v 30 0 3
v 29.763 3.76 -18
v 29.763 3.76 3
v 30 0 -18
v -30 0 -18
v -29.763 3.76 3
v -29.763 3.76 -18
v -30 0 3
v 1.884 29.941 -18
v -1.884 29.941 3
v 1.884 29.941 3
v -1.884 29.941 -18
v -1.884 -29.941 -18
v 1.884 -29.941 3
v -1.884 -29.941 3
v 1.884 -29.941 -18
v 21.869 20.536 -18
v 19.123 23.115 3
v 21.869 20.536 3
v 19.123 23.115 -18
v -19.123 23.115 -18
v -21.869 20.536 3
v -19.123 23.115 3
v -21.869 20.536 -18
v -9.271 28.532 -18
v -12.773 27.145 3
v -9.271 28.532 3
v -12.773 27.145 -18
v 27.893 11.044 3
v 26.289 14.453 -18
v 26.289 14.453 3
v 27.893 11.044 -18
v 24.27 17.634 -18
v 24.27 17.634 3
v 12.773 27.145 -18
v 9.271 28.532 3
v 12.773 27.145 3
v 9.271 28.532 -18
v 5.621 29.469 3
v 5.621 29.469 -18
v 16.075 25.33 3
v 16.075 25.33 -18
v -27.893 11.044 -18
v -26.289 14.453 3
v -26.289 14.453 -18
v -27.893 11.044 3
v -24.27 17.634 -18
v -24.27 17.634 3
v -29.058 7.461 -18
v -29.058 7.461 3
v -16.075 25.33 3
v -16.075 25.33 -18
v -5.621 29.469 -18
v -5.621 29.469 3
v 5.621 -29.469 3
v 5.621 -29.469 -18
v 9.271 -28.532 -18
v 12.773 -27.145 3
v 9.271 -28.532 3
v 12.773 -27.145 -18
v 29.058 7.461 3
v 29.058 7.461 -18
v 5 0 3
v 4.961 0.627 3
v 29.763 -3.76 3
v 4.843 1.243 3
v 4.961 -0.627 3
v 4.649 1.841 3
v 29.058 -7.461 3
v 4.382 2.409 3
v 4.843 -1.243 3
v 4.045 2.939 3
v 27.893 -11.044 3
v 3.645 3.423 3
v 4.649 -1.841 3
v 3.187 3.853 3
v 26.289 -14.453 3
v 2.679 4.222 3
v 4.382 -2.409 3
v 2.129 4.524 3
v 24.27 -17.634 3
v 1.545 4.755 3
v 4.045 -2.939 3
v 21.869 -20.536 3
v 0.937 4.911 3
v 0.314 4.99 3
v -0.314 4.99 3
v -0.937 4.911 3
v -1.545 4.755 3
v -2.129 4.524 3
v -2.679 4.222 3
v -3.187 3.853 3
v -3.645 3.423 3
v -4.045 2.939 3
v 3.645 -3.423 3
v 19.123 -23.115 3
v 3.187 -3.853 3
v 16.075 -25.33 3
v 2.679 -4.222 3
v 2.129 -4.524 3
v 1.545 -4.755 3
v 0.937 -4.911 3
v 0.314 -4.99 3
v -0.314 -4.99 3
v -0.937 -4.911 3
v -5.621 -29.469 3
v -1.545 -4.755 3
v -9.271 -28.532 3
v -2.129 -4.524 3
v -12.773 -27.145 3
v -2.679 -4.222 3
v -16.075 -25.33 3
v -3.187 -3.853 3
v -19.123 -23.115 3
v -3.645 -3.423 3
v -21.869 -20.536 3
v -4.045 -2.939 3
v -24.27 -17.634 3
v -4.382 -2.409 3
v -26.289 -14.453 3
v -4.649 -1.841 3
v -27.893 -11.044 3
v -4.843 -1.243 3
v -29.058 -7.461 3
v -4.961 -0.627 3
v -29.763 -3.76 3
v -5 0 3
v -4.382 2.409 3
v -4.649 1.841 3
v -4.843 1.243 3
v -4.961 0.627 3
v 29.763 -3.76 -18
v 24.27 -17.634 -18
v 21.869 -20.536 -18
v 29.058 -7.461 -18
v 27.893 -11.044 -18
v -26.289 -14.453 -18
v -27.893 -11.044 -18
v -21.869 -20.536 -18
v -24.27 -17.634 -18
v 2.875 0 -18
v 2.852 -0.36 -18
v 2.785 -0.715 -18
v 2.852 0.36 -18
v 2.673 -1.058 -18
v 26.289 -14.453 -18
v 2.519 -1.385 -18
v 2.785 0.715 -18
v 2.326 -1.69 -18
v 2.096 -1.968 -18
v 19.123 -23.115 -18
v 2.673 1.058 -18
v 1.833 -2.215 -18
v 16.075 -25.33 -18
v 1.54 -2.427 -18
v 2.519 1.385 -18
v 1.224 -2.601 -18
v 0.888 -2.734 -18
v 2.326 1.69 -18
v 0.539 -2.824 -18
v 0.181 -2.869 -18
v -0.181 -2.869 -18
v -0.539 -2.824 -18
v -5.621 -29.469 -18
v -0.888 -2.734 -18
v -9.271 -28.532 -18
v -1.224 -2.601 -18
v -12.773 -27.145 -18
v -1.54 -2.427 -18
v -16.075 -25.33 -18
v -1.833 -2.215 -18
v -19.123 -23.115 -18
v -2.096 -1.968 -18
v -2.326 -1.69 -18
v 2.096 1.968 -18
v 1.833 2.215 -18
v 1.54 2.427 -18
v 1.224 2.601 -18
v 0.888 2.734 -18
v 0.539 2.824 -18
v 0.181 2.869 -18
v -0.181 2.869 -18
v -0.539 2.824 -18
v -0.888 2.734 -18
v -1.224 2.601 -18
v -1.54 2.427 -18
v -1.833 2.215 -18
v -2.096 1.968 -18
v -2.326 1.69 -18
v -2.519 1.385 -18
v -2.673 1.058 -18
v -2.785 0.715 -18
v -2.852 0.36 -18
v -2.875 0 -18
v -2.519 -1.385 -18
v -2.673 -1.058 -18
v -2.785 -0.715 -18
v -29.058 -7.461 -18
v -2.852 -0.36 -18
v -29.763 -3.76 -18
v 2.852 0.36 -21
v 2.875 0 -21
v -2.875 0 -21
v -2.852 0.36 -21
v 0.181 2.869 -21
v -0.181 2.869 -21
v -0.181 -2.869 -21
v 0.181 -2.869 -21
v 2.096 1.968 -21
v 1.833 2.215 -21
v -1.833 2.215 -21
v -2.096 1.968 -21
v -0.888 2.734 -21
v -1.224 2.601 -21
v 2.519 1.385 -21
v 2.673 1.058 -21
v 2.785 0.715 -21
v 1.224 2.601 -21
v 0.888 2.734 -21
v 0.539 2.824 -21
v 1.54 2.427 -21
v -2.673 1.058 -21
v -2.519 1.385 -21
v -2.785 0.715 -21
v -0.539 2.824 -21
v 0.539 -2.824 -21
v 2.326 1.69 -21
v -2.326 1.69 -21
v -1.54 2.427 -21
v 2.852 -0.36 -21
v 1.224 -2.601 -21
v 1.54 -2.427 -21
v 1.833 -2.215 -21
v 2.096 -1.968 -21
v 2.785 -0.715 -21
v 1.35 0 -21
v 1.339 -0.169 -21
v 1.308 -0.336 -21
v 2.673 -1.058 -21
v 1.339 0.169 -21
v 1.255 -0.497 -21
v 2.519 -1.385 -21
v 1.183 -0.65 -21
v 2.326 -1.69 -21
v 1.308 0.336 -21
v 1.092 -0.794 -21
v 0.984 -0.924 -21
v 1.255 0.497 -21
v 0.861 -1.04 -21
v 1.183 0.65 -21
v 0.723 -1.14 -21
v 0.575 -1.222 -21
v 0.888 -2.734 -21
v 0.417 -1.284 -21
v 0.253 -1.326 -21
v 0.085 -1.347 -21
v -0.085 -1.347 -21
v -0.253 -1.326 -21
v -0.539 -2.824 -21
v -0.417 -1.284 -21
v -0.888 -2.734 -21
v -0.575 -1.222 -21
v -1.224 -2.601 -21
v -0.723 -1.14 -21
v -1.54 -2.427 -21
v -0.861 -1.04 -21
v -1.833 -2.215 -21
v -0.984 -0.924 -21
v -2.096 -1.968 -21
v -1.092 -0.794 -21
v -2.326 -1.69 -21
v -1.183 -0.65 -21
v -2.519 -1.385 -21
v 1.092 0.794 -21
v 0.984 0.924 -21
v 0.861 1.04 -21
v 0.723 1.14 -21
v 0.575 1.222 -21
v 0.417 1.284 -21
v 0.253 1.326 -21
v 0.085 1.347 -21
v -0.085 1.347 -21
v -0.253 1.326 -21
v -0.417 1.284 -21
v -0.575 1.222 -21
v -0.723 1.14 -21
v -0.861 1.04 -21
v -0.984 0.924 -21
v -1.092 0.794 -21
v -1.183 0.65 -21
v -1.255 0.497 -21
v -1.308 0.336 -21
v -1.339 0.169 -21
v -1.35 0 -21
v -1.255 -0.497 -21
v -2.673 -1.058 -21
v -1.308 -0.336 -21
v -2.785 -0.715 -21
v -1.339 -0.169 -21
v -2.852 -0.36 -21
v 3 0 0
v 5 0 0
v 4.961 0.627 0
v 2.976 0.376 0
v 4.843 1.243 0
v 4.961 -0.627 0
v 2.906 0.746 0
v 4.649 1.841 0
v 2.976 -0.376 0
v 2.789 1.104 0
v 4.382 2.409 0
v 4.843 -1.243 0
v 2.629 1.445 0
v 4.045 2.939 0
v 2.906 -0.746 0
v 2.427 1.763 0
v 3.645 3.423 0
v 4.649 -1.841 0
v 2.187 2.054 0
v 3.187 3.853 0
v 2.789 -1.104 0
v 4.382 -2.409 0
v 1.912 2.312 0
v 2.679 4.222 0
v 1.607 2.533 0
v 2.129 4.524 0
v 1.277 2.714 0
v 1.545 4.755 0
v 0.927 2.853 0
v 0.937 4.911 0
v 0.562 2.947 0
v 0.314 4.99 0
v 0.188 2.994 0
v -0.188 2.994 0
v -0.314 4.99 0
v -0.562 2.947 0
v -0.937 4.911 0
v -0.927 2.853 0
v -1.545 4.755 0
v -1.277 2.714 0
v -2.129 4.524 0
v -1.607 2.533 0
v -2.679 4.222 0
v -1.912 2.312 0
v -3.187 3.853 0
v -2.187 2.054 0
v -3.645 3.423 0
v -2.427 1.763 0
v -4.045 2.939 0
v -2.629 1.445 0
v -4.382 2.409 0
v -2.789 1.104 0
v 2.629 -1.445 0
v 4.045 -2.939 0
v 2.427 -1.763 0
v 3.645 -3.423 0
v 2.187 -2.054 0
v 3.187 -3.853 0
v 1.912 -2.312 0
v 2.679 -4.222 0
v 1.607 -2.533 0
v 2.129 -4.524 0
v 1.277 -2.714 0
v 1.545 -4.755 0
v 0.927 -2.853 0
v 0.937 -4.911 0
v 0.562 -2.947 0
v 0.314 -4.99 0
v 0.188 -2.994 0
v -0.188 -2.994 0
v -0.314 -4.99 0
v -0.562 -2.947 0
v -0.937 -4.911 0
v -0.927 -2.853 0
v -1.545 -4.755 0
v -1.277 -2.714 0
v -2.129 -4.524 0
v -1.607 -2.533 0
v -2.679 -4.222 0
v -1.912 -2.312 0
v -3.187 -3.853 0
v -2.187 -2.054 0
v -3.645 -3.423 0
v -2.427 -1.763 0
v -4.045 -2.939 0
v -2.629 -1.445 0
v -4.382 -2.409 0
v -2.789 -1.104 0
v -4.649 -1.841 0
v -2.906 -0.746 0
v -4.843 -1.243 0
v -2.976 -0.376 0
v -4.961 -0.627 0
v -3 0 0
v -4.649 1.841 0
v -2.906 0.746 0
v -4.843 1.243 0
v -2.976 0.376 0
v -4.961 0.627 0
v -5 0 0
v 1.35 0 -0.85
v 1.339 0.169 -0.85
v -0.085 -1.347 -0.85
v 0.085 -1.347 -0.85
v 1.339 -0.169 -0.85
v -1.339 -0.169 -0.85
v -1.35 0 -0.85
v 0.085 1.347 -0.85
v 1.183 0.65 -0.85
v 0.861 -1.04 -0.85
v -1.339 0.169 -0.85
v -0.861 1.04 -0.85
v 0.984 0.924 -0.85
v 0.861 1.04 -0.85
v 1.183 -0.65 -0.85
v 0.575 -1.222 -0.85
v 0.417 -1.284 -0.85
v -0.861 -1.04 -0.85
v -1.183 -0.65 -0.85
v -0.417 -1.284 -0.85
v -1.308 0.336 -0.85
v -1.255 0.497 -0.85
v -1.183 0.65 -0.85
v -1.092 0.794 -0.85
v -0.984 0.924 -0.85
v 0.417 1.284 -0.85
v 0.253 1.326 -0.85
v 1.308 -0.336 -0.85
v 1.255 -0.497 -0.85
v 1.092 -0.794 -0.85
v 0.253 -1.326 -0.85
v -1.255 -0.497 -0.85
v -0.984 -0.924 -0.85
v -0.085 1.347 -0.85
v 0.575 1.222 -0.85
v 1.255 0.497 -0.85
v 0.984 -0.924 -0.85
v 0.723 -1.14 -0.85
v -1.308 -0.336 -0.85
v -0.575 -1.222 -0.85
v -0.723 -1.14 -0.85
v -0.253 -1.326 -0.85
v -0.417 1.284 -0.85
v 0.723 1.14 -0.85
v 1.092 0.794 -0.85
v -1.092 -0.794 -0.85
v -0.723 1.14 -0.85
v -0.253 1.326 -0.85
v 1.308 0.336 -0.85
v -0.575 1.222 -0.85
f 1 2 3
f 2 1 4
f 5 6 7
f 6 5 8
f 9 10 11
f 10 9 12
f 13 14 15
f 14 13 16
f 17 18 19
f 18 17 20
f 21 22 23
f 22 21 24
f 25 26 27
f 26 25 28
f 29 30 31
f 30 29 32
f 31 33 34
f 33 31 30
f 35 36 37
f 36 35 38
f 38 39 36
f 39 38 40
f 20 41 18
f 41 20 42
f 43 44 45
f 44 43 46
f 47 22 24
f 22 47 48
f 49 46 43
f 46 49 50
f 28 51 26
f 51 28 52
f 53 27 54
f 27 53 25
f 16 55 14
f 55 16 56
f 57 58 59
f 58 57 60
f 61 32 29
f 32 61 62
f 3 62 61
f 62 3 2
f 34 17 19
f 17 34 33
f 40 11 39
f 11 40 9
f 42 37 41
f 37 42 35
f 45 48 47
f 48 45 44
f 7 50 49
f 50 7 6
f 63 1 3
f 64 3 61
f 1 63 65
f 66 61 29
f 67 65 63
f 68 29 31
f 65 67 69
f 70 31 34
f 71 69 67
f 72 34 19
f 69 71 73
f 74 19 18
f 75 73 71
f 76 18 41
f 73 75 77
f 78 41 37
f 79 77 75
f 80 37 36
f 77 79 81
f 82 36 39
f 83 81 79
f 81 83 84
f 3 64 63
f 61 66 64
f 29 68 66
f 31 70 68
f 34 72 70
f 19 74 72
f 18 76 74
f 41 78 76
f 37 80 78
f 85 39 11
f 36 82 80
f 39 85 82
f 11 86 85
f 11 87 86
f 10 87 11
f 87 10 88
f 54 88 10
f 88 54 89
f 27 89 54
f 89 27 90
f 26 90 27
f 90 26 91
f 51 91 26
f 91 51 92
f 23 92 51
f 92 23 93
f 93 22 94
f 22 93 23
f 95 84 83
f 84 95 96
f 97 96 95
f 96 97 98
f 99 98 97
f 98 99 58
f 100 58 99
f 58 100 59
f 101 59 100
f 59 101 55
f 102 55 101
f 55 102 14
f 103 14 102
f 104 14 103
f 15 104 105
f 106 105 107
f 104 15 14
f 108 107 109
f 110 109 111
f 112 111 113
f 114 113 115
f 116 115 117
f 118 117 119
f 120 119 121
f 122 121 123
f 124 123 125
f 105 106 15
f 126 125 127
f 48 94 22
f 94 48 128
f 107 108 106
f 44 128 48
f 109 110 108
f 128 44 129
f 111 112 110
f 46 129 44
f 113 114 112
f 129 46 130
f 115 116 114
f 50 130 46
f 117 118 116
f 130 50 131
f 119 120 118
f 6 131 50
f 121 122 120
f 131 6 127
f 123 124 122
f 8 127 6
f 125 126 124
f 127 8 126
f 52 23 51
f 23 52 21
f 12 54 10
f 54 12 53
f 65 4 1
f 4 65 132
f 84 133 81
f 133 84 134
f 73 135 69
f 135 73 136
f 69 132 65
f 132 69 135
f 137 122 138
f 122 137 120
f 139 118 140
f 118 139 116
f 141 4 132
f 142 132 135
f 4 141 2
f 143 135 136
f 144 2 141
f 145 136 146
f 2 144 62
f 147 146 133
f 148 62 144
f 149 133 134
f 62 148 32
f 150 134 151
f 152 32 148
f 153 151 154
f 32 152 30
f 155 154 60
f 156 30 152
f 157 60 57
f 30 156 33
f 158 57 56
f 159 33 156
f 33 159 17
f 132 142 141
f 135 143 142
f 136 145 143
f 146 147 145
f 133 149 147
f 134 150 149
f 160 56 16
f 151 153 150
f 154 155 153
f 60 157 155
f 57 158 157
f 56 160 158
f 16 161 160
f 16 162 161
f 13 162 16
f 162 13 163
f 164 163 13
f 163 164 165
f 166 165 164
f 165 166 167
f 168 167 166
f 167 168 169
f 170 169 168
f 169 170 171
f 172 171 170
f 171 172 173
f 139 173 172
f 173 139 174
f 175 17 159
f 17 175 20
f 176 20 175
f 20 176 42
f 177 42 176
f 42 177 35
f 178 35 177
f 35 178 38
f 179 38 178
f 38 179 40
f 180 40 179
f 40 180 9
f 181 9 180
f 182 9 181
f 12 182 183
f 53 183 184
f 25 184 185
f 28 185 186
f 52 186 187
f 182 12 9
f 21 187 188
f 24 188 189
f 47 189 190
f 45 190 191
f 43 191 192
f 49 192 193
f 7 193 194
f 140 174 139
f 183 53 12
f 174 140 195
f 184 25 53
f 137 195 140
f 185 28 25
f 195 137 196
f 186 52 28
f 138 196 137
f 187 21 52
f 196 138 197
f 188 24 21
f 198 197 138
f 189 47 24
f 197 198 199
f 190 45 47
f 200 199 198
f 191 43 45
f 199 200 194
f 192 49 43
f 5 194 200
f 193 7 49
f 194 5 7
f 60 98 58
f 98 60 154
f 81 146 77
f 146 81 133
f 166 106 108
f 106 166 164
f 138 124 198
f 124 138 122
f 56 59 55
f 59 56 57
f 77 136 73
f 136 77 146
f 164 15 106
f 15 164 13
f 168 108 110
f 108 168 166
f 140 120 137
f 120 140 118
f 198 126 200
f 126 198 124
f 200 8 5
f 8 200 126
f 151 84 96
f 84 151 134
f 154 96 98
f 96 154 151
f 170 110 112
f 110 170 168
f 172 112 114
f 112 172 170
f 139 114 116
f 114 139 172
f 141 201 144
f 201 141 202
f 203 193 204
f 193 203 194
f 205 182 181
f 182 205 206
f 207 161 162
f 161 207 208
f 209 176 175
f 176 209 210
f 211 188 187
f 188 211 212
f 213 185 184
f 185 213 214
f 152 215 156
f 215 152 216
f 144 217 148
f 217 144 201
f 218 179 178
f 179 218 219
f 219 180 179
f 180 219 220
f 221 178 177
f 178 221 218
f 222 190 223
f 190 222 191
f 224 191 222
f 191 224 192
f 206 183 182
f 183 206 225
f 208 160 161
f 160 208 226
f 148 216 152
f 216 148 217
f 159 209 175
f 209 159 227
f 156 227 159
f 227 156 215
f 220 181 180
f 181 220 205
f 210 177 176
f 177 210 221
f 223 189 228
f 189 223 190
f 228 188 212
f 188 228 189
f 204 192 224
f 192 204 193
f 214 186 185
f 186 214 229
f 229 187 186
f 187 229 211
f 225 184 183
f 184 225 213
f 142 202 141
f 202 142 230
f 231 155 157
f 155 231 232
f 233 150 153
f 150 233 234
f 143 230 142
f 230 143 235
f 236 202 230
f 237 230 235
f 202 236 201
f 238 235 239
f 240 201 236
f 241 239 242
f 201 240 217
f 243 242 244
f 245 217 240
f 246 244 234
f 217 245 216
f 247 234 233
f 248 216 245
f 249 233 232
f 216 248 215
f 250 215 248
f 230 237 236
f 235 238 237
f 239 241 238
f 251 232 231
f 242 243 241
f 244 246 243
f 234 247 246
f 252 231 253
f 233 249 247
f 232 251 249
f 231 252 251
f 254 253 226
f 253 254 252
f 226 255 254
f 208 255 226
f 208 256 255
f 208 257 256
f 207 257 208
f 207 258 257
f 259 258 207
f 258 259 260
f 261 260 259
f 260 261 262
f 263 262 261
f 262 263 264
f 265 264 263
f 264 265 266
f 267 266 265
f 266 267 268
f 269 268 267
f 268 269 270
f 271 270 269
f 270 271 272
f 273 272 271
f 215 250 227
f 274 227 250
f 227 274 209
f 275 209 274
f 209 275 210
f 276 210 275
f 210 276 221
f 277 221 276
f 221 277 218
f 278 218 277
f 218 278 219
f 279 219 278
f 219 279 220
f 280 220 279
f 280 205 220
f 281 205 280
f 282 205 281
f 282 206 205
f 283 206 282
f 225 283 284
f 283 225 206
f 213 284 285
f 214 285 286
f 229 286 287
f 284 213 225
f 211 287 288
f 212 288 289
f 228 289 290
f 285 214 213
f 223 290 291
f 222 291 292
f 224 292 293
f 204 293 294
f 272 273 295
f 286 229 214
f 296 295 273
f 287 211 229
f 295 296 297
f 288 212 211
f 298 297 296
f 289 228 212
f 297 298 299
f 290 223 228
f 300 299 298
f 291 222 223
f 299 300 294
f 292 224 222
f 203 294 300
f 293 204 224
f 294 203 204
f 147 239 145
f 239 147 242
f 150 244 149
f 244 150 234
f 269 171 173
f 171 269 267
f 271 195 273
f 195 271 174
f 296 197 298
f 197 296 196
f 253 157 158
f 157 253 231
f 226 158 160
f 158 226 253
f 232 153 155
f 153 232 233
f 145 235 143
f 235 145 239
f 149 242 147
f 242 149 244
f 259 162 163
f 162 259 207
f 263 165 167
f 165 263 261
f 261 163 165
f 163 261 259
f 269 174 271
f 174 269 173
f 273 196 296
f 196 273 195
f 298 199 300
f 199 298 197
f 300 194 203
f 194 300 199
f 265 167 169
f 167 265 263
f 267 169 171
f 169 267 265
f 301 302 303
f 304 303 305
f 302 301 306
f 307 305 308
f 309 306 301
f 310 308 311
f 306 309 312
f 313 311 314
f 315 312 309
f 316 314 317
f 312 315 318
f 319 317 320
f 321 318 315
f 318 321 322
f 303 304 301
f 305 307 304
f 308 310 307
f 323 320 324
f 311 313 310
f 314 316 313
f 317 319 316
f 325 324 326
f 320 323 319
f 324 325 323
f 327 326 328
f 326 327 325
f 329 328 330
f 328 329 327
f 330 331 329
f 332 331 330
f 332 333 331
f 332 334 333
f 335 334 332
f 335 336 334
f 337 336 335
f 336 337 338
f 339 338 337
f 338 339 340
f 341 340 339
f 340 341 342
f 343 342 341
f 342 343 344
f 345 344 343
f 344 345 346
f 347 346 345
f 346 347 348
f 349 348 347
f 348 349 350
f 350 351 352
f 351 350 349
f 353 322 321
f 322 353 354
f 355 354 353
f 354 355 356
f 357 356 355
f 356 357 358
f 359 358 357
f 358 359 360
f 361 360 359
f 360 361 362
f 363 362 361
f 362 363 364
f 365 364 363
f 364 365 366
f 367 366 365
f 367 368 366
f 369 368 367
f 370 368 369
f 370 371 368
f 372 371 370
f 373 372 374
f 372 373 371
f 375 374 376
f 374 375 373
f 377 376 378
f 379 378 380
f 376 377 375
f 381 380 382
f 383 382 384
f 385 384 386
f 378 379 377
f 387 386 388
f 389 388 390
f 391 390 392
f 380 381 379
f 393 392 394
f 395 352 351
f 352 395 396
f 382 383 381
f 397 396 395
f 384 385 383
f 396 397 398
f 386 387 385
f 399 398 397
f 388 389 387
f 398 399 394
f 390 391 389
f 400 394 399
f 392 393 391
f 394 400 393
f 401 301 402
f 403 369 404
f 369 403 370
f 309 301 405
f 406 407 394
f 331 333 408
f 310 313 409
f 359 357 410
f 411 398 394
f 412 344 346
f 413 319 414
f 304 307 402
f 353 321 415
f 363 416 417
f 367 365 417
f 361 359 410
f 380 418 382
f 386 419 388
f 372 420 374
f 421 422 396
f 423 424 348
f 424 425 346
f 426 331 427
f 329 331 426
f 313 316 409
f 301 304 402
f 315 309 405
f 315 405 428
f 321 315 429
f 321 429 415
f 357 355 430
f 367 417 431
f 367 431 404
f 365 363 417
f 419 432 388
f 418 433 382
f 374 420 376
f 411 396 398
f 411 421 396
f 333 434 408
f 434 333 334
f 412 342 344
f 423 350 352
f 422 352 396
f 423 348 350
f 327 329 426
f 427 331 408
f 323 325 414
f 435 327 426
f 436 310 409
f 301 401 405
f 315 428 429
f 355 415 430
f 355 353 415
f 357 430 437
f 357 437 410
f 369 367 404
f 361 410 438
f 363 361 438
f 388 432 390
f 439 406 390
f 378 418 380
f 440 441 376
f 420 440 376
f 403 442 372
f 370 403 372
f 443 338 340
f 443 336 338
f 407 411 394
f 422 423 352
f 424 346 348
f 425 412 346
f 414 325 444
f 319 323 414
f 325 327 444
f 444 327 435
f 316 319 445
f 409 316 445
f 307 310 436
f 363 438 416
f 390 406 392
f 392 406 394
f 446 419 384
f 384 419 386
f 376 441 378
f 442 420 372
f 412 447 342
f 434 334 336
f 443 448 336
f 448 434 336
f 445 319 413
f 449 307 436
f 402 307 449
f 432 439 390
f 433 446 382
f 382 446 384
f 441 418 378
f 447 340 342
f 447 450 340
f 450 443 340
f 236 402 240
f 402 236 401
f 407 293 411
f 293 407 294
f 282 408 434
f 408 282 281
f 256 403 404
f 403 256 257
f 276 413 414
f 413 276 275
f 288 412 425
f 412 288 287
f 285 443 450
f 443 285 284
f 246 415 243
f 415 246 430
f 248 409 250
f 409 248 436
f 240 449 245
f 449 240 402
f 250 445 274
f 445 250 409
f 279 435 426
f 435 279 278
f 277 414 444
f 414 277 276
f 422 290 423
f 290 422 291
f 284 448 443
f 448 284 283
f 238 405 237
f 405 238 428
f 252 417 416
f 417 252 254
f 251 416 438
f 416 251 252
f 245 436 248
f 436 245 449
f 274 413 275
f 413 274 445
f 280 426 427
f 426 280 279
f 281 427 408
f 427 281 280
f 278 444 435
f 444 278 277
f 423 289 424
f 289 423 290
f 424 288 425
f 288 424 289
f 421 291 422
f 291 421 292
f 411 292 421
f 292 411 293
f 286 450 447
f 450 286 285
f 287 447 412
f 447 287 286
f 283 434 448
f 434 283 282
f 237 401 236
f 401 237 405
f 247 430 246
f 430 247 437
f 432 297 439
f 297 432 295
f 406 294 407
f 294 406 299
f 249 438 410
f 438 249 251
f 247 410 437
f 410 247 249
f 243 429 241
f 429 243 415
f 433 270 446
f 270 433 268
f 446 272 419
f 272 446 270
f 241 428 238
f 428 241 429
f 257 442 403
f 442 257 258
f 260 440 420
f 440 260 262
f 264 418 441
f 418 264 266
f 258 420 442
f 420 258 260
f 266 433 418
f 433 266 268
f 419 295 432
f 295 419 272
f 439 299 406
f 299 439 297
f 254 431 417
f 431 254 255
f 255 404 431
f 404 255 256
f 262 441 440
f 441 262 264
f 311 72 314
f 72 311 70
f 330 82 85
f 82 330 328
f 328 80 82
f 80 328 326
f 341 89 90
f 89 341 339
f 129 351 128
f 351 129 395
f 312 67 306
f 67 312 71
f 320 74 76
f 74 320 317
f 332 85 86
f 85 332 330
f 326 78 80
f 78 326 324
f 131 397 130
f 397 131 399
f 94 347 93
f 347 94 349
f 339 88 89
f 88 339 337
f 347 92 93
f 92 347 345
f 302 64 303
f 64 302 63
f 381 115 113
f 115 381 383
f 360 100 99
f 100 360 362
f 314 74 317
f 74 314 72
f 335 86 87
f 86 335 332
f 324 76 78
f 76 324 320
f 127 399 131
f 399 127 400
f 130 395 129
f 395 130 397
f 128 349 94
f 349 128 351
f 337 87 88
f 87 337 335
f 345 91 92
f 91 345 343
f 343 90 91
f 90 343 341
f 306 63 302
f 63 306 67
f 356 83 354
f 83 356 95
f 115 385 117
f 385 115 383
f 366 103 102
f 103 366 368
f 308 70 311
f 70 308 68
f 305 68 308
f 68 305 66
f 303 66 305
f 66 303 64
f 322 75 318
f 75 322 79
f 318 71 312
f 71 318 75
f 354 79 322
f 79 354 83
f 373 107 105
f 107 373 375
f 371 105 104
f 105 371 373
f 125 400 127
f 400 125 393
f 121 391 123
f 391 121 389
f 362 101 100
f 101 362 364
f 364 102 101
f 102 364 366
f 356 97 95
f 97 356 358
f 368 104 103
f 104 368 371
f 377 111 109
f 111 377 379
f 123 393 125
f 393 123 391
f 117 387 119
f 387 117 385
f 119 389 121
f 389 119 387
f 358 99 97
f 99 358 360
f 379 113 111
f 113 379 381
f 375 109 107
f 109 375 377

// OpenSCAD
$fn = 50;

difference() {
	union() {
		translate(v = [0, 0, -18.0]) {
			cylinder(h = 21, r = 30.0);
		}
		#translate(v = [0, 0, -21.0]) {
			cylinder(h = 21, r = 2.875);
		}
	}
	union() {
		translate(v = [0, 0, 0]) {
			rotate(a = [0, 0, 0]) {
				difference() {
					union() {
						translate(v = [0, 0, -21.0]) {
							cylinder(h = 21, r = 1.0);
						}
						translate(v = [0, 0, -0.85]) {
							cylinder(h = 0.85, r1 = 1.35, r2 = 3.0);
						}
						translate(v = [0, 0, -21.0]) {
							cylinder(h = 21, r = 1.35);
						}
						translate(v = [0, 0, -21.0]) {
							cylinder(h = 21, r = 1.0);
						}
					}
					union();
				}
			}
		}
		#cylinder(h = 3, r = 5.0);
	}
}
